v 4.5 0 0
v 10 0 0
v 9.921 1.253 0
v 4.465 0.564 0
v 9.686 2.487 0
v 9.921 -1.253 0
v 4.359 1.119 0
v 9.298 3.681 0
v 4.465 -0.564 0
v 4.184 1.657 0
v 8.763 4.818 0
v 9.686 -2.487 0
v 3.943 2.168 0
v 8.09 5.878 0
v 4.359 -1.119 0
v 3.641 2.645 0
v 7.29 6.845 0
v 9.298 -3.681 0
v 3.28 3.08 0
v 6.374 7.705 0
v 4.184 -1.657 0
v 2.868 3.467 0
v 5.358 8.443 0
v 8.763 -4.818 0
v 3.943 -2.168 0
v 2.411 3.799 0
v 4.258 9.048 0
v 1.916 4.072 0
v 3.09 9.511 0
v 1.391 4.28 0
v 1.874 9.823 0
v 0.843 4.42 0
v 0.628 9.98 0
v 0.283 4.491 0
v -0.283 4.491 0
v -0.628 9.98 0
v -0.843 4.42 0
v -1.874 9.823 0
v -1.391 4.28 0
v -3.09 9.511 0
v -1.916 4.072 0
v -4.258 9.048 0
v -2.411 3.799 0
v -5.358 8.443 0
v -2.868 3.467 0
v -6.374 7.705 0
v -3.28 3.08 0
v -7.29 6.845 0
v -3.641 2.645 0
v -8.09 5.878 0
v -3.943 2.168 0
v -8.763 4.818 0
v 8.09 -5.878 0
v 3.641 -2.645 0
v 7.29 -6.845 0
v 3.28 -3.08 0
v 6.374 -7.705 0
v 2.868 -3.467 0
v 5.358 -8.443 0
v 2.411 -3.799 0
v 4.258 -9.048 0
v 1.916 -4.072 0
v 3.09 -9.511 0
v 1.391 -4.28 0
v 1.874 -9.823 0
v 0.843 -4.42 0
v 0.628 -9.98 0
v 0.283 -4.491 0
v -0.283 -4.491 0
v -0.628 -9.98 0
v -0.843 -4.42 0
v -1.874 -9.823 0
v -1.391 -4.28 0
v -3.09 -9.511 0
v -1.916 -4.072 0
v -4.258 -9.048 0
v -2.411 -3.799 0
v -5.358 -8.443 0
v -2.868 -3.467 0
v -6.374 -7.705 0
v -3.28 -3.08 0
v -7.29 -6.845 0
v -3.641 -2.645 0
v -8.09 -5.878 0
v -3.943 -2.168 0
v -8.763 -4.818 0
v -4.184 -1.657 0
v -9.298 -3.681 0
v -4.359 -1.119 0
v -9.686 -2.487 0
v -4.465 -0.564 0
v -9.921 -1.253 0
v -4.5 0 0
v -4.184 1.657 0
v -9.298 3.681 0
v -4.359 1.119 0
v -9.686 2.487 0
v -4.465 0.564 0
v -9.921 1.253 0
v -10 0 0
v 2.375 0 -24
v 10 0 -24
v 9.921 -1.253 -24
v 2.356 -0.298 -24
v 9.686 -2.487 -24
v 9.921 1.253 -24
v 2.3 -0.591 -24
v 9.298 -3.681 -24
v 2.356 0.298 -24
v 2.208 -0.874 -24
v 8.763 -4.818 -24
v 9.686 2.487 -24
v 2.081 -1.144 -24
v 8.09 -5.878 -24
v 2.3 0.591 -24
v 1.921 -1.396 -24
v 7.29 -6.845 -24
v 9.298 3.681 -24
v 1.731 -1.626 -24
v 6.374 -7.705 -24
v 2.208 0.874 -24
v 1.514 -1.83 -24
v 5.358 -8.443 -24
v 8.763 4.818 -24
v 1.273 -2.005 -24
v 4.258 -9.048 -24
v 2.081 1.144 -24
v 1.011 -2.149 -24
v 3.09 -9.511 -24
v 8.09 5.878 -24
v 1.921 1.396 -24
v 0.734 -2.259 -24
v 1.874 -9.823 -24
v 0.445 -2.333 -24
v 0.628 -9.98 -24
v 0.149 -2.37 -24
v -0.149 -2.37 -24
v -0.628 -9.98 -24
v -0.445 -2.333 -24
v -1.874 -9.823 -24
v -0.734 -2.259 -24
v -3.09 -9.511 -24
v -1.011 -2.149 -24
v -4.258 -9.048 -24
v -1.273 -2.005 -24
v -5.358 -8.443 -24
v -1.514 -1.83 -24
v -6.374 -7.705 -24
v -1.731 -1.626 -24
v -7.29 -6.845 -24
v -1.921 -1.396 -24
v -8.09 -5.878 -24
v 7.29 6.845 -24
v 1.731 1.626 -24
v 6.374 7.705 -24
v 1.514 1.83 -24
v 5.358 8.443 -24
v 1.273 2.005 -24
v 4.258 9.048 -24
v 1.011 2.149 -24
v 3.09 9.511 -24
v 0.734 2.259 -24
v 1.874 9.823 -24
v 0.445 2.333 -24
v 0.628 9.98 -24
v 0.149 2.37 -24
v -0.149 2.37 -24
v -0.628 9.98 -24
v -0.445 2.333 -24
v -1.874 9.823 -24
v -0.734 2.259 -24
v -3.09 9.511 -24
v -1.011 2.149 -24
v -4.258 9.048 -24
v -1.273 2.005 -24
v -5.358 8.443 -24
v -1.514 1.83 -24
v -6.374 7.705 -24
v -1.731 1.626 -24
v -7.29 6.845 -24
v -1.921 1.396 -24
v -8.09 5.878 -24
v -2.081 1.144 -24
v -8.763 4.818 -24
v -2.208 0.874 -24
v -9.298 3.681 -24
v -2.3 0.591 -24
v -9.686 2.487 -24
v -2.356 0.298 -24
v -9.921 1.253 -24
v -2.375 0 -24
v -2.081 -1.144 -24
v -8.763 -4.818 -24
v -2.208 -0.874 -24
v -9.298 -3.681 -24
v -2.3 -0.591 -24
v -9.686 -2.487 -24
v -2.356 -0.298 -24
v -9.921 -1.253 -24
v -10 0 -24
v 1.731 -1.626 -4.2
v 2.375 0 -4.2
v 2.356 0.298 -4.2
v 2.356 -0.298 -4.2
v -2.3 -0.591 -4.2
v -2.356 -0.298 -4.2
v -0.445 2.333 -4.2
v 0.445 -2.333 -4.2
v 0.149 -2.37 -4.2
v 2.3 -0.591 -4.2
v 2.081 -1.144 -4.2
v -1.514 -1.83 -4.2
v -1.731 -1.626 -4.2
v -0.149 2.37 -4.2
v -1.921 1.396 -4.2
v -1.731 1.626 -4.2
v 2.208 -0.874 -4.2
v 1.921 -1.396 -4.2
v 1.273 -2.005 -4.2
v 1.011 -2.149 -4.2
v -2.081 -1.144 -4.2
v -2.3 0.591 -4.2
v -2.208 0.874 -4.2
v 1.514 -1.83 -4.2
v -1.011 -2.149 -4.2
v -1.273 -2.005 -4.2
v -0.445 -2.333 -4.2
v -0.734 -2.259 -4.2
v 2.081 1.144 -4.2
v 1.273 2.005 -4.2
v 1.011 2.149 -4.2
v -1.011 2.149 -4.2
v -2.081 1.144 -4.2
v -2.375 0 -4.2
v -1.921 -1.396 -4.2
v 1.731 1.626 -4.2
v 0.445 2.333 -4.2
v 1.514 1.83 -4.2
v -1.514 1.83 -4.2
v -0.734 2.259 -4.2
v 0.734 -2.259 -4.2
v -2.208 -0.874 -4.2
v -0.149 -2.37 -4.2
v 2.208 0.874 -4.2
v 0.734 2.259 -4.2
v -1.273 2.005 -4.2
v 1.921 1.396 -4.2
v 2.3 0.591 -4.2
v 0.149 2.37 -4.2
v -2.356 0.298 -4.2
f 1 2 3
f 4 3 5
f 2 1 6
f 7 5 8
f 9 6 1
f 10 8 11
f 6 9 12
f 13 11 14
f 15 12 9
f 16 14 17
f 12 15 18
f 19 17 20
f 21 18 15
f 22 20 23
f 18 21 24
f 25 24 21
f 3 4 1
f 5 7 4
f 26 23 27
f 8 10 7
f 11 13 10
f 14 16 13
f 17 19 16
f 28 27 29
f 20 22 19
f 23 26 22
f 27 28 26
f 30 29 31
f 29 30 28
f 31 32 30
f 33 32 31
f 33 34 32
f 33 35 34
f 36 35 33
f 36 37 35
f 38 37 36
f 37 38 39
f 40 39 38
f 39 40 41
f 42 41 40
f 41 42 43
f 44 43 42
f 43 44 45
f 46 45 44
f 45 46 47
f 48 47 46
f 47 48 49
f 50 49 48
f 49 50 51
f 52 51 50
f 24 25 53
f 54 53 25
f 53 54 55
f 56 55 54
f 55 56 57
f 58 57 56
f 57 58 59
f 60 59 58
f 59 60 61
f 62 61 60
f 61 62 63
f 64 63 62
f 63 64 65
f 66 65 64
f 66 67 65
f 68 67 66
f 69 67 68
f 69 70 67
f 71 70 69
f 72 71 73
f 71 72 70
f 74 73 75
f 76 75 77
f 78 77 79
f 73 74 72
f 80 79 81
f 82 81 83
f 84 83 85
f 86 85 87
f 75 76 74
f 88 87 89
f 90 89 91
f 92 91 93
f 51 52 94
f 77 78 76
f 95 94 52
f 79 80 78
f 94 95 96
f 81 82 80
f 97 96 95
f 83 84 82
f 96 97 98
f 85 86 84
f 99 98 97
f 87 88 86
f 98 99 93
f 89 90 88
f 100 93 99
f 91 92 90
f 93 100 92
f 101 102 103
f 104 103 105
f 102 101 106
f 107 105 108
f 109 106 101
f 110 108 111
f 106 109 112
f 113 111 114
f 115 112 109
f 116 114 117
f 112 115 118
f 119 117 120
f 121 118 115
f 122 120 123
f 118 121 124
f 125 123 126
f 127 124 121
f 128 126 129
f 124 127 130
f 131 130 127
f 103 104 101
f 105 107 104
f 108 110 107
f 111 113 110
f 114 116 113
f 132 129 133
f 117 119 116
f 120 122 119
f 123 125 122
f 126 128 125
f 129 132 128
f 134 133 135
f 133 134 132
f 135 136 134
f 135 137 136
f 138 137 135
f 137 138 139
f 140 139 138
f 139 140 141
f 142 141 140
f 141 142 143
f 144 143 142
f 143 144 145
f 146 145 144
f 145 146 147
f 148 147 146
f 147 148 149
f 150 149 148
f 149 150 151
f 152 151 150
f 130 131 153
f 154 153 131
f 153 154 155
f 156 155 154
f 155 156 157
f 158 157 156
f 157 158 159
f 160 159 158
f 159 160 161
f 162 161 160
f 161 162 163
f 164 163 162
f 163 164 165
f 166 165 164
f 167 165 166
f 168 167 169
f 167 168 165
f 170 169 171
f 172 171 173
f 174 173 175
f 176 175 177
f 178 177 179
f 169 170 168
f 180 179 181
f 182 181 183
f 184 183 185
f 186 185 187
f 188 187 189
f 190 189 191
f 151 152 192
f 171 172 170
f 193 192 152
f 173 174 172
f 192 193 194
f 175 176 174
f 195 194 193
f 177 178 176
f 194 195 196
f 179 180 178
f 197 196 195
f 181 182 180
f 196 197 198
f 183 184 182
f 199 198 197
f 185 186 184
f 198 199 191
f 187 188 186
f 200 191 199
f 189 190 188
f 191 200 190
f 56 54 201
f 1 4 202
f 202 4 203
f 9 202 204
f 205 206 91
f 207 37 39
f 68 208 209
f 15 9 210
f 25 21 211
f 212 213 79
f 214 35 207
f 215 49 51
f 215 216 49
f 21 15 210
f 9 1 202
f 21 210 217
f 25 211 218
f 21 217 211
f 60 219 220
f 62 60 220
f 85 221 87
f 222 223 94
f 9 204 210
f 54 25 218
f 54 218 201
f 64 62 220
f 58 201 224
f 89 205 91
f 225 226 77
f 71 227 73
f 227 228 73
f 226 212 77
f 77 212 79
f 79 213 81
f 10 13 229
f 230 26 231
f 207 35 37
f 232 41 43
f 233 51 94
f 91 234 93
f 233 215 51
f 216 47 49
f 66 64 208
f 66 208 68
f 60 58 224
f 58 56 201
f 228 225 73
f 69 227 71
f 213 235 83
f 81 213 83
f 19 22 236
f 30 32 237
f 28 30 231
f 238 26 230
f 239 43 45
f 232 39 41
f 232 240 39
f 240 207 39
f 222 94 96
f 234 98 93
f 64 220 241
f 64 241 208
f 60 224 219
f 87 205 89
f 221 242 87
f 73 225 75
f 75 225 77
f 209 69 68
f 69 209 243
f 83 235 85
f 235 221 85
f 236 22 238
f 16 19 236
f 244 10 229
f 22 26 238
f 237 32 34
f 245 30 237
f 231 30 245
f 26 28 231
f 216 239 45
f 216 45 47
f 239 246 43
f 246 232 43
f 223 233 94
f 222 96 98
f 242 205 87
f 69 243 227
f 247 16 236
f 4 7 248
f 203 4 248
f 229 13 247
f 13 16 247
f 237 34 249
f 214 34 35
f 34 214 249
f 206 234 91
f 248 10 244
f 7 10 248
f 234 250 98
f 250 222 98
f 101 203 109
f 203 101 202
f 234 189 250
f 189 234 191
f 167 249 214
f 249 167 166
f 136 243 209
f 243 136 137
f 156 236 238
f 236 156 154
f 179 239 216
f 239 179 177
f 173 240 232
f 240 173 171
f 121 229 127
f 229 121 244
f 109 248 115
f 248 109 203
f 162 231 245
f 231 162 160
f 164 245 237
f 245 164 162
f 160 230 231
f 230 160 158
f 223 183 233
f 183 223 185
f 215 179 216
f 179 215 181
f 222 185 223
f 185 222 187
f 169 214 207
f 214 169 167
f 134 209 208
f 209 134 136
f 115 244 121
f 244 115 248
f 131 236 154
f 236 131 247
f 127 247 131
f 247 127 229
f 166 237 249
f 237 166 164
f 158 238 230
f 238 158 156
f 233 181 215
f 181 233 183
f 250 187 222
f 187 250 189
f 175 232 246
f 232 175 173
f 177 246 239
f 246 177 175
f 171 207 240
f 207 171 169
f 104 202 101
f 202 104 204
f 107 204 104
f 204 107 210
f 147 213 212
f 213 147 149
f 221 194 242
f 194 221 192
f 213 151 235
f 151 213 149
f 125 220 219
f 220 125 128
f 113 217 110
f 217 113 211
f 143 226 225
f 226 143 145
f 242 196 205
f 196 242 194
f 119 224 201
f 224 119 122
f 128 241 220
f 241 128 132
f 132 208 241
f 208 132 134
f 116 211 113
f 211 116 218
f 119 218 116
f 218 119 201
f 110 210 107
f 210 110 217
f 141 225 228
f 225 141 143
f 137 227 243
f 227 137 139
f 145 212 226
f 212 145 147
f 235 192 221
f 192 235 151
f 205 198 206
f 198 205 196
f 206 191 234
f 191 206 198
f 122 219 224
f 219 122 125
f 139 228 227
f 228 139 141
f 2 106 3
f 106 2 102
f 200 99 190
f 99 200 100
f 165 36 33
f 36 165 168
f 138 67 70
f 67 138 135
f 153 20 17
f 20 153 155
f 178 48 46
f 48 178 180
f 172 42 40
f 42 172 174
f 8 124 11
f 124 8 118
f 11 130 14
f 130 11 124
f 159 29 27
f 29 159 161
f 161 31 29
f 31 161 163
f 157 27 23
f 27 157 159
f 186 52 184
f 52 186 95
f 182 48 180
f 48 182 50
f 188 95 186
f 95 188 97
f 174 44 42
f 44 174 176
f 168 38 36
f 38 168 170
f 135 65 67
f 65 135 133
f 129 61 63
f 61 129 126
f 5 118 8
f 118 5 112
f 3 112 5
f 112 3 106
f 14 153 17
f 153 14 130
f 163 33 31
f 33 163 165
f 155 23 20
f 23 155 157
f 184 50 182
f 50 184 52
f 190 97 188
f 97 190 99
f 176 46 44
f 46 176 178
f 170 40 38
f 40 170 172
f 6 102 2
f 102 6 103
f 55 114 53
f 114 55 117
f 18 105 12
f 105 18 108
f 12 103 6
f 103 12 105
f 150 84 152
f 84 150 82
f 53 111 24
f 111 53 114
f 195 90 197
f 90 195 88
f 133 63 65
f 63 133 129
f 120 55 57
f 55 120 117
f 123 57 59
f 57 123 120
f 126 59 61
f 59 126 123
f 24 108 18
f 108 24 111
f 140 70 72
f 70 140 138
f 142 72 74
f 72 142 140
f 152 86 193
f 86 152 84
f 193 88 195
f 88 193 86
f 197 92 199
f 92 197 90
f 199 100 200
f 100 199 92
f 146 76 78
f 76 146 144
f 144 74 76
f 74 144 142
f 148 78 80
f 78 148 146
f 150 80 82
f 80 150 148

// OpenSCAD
$fn = 50;


difference() {
	union() {
		translate(v = [0, 0, -24.0000000000]) {
			cylinder(h = 24, r = 10.0000000000);
		}
		cylinder(h = 0, r = 19.0000000000);
	}
	union() {
		translate(v = [0, 0, 0]) {
			rotate(a = [0, 0, 0]) {
				difference() {
					union() {
						#translate(v = [0, 0, -24.0000000000]) {
							cylinder(h = 24, r = 2.2500000000);
						}
						#translate(v = [0, 0, -4.2000000000]) {
							cylinder(h = 4.2000000000, r = 10.0000000000, r1 = 2.3750000000, r2 = 4.5000000000);
						}
						#translate(v = [0, 0, -24.0000000000]) {
							cylinder(h = 24, r = 2.3750000000);
						}
						#translate(v = [0, 0, -24.0000000000]) {
							cylinder(h = 24, r = 2.2500000000);
						}
					}
					union();
				}
			}
		}
	}
}
